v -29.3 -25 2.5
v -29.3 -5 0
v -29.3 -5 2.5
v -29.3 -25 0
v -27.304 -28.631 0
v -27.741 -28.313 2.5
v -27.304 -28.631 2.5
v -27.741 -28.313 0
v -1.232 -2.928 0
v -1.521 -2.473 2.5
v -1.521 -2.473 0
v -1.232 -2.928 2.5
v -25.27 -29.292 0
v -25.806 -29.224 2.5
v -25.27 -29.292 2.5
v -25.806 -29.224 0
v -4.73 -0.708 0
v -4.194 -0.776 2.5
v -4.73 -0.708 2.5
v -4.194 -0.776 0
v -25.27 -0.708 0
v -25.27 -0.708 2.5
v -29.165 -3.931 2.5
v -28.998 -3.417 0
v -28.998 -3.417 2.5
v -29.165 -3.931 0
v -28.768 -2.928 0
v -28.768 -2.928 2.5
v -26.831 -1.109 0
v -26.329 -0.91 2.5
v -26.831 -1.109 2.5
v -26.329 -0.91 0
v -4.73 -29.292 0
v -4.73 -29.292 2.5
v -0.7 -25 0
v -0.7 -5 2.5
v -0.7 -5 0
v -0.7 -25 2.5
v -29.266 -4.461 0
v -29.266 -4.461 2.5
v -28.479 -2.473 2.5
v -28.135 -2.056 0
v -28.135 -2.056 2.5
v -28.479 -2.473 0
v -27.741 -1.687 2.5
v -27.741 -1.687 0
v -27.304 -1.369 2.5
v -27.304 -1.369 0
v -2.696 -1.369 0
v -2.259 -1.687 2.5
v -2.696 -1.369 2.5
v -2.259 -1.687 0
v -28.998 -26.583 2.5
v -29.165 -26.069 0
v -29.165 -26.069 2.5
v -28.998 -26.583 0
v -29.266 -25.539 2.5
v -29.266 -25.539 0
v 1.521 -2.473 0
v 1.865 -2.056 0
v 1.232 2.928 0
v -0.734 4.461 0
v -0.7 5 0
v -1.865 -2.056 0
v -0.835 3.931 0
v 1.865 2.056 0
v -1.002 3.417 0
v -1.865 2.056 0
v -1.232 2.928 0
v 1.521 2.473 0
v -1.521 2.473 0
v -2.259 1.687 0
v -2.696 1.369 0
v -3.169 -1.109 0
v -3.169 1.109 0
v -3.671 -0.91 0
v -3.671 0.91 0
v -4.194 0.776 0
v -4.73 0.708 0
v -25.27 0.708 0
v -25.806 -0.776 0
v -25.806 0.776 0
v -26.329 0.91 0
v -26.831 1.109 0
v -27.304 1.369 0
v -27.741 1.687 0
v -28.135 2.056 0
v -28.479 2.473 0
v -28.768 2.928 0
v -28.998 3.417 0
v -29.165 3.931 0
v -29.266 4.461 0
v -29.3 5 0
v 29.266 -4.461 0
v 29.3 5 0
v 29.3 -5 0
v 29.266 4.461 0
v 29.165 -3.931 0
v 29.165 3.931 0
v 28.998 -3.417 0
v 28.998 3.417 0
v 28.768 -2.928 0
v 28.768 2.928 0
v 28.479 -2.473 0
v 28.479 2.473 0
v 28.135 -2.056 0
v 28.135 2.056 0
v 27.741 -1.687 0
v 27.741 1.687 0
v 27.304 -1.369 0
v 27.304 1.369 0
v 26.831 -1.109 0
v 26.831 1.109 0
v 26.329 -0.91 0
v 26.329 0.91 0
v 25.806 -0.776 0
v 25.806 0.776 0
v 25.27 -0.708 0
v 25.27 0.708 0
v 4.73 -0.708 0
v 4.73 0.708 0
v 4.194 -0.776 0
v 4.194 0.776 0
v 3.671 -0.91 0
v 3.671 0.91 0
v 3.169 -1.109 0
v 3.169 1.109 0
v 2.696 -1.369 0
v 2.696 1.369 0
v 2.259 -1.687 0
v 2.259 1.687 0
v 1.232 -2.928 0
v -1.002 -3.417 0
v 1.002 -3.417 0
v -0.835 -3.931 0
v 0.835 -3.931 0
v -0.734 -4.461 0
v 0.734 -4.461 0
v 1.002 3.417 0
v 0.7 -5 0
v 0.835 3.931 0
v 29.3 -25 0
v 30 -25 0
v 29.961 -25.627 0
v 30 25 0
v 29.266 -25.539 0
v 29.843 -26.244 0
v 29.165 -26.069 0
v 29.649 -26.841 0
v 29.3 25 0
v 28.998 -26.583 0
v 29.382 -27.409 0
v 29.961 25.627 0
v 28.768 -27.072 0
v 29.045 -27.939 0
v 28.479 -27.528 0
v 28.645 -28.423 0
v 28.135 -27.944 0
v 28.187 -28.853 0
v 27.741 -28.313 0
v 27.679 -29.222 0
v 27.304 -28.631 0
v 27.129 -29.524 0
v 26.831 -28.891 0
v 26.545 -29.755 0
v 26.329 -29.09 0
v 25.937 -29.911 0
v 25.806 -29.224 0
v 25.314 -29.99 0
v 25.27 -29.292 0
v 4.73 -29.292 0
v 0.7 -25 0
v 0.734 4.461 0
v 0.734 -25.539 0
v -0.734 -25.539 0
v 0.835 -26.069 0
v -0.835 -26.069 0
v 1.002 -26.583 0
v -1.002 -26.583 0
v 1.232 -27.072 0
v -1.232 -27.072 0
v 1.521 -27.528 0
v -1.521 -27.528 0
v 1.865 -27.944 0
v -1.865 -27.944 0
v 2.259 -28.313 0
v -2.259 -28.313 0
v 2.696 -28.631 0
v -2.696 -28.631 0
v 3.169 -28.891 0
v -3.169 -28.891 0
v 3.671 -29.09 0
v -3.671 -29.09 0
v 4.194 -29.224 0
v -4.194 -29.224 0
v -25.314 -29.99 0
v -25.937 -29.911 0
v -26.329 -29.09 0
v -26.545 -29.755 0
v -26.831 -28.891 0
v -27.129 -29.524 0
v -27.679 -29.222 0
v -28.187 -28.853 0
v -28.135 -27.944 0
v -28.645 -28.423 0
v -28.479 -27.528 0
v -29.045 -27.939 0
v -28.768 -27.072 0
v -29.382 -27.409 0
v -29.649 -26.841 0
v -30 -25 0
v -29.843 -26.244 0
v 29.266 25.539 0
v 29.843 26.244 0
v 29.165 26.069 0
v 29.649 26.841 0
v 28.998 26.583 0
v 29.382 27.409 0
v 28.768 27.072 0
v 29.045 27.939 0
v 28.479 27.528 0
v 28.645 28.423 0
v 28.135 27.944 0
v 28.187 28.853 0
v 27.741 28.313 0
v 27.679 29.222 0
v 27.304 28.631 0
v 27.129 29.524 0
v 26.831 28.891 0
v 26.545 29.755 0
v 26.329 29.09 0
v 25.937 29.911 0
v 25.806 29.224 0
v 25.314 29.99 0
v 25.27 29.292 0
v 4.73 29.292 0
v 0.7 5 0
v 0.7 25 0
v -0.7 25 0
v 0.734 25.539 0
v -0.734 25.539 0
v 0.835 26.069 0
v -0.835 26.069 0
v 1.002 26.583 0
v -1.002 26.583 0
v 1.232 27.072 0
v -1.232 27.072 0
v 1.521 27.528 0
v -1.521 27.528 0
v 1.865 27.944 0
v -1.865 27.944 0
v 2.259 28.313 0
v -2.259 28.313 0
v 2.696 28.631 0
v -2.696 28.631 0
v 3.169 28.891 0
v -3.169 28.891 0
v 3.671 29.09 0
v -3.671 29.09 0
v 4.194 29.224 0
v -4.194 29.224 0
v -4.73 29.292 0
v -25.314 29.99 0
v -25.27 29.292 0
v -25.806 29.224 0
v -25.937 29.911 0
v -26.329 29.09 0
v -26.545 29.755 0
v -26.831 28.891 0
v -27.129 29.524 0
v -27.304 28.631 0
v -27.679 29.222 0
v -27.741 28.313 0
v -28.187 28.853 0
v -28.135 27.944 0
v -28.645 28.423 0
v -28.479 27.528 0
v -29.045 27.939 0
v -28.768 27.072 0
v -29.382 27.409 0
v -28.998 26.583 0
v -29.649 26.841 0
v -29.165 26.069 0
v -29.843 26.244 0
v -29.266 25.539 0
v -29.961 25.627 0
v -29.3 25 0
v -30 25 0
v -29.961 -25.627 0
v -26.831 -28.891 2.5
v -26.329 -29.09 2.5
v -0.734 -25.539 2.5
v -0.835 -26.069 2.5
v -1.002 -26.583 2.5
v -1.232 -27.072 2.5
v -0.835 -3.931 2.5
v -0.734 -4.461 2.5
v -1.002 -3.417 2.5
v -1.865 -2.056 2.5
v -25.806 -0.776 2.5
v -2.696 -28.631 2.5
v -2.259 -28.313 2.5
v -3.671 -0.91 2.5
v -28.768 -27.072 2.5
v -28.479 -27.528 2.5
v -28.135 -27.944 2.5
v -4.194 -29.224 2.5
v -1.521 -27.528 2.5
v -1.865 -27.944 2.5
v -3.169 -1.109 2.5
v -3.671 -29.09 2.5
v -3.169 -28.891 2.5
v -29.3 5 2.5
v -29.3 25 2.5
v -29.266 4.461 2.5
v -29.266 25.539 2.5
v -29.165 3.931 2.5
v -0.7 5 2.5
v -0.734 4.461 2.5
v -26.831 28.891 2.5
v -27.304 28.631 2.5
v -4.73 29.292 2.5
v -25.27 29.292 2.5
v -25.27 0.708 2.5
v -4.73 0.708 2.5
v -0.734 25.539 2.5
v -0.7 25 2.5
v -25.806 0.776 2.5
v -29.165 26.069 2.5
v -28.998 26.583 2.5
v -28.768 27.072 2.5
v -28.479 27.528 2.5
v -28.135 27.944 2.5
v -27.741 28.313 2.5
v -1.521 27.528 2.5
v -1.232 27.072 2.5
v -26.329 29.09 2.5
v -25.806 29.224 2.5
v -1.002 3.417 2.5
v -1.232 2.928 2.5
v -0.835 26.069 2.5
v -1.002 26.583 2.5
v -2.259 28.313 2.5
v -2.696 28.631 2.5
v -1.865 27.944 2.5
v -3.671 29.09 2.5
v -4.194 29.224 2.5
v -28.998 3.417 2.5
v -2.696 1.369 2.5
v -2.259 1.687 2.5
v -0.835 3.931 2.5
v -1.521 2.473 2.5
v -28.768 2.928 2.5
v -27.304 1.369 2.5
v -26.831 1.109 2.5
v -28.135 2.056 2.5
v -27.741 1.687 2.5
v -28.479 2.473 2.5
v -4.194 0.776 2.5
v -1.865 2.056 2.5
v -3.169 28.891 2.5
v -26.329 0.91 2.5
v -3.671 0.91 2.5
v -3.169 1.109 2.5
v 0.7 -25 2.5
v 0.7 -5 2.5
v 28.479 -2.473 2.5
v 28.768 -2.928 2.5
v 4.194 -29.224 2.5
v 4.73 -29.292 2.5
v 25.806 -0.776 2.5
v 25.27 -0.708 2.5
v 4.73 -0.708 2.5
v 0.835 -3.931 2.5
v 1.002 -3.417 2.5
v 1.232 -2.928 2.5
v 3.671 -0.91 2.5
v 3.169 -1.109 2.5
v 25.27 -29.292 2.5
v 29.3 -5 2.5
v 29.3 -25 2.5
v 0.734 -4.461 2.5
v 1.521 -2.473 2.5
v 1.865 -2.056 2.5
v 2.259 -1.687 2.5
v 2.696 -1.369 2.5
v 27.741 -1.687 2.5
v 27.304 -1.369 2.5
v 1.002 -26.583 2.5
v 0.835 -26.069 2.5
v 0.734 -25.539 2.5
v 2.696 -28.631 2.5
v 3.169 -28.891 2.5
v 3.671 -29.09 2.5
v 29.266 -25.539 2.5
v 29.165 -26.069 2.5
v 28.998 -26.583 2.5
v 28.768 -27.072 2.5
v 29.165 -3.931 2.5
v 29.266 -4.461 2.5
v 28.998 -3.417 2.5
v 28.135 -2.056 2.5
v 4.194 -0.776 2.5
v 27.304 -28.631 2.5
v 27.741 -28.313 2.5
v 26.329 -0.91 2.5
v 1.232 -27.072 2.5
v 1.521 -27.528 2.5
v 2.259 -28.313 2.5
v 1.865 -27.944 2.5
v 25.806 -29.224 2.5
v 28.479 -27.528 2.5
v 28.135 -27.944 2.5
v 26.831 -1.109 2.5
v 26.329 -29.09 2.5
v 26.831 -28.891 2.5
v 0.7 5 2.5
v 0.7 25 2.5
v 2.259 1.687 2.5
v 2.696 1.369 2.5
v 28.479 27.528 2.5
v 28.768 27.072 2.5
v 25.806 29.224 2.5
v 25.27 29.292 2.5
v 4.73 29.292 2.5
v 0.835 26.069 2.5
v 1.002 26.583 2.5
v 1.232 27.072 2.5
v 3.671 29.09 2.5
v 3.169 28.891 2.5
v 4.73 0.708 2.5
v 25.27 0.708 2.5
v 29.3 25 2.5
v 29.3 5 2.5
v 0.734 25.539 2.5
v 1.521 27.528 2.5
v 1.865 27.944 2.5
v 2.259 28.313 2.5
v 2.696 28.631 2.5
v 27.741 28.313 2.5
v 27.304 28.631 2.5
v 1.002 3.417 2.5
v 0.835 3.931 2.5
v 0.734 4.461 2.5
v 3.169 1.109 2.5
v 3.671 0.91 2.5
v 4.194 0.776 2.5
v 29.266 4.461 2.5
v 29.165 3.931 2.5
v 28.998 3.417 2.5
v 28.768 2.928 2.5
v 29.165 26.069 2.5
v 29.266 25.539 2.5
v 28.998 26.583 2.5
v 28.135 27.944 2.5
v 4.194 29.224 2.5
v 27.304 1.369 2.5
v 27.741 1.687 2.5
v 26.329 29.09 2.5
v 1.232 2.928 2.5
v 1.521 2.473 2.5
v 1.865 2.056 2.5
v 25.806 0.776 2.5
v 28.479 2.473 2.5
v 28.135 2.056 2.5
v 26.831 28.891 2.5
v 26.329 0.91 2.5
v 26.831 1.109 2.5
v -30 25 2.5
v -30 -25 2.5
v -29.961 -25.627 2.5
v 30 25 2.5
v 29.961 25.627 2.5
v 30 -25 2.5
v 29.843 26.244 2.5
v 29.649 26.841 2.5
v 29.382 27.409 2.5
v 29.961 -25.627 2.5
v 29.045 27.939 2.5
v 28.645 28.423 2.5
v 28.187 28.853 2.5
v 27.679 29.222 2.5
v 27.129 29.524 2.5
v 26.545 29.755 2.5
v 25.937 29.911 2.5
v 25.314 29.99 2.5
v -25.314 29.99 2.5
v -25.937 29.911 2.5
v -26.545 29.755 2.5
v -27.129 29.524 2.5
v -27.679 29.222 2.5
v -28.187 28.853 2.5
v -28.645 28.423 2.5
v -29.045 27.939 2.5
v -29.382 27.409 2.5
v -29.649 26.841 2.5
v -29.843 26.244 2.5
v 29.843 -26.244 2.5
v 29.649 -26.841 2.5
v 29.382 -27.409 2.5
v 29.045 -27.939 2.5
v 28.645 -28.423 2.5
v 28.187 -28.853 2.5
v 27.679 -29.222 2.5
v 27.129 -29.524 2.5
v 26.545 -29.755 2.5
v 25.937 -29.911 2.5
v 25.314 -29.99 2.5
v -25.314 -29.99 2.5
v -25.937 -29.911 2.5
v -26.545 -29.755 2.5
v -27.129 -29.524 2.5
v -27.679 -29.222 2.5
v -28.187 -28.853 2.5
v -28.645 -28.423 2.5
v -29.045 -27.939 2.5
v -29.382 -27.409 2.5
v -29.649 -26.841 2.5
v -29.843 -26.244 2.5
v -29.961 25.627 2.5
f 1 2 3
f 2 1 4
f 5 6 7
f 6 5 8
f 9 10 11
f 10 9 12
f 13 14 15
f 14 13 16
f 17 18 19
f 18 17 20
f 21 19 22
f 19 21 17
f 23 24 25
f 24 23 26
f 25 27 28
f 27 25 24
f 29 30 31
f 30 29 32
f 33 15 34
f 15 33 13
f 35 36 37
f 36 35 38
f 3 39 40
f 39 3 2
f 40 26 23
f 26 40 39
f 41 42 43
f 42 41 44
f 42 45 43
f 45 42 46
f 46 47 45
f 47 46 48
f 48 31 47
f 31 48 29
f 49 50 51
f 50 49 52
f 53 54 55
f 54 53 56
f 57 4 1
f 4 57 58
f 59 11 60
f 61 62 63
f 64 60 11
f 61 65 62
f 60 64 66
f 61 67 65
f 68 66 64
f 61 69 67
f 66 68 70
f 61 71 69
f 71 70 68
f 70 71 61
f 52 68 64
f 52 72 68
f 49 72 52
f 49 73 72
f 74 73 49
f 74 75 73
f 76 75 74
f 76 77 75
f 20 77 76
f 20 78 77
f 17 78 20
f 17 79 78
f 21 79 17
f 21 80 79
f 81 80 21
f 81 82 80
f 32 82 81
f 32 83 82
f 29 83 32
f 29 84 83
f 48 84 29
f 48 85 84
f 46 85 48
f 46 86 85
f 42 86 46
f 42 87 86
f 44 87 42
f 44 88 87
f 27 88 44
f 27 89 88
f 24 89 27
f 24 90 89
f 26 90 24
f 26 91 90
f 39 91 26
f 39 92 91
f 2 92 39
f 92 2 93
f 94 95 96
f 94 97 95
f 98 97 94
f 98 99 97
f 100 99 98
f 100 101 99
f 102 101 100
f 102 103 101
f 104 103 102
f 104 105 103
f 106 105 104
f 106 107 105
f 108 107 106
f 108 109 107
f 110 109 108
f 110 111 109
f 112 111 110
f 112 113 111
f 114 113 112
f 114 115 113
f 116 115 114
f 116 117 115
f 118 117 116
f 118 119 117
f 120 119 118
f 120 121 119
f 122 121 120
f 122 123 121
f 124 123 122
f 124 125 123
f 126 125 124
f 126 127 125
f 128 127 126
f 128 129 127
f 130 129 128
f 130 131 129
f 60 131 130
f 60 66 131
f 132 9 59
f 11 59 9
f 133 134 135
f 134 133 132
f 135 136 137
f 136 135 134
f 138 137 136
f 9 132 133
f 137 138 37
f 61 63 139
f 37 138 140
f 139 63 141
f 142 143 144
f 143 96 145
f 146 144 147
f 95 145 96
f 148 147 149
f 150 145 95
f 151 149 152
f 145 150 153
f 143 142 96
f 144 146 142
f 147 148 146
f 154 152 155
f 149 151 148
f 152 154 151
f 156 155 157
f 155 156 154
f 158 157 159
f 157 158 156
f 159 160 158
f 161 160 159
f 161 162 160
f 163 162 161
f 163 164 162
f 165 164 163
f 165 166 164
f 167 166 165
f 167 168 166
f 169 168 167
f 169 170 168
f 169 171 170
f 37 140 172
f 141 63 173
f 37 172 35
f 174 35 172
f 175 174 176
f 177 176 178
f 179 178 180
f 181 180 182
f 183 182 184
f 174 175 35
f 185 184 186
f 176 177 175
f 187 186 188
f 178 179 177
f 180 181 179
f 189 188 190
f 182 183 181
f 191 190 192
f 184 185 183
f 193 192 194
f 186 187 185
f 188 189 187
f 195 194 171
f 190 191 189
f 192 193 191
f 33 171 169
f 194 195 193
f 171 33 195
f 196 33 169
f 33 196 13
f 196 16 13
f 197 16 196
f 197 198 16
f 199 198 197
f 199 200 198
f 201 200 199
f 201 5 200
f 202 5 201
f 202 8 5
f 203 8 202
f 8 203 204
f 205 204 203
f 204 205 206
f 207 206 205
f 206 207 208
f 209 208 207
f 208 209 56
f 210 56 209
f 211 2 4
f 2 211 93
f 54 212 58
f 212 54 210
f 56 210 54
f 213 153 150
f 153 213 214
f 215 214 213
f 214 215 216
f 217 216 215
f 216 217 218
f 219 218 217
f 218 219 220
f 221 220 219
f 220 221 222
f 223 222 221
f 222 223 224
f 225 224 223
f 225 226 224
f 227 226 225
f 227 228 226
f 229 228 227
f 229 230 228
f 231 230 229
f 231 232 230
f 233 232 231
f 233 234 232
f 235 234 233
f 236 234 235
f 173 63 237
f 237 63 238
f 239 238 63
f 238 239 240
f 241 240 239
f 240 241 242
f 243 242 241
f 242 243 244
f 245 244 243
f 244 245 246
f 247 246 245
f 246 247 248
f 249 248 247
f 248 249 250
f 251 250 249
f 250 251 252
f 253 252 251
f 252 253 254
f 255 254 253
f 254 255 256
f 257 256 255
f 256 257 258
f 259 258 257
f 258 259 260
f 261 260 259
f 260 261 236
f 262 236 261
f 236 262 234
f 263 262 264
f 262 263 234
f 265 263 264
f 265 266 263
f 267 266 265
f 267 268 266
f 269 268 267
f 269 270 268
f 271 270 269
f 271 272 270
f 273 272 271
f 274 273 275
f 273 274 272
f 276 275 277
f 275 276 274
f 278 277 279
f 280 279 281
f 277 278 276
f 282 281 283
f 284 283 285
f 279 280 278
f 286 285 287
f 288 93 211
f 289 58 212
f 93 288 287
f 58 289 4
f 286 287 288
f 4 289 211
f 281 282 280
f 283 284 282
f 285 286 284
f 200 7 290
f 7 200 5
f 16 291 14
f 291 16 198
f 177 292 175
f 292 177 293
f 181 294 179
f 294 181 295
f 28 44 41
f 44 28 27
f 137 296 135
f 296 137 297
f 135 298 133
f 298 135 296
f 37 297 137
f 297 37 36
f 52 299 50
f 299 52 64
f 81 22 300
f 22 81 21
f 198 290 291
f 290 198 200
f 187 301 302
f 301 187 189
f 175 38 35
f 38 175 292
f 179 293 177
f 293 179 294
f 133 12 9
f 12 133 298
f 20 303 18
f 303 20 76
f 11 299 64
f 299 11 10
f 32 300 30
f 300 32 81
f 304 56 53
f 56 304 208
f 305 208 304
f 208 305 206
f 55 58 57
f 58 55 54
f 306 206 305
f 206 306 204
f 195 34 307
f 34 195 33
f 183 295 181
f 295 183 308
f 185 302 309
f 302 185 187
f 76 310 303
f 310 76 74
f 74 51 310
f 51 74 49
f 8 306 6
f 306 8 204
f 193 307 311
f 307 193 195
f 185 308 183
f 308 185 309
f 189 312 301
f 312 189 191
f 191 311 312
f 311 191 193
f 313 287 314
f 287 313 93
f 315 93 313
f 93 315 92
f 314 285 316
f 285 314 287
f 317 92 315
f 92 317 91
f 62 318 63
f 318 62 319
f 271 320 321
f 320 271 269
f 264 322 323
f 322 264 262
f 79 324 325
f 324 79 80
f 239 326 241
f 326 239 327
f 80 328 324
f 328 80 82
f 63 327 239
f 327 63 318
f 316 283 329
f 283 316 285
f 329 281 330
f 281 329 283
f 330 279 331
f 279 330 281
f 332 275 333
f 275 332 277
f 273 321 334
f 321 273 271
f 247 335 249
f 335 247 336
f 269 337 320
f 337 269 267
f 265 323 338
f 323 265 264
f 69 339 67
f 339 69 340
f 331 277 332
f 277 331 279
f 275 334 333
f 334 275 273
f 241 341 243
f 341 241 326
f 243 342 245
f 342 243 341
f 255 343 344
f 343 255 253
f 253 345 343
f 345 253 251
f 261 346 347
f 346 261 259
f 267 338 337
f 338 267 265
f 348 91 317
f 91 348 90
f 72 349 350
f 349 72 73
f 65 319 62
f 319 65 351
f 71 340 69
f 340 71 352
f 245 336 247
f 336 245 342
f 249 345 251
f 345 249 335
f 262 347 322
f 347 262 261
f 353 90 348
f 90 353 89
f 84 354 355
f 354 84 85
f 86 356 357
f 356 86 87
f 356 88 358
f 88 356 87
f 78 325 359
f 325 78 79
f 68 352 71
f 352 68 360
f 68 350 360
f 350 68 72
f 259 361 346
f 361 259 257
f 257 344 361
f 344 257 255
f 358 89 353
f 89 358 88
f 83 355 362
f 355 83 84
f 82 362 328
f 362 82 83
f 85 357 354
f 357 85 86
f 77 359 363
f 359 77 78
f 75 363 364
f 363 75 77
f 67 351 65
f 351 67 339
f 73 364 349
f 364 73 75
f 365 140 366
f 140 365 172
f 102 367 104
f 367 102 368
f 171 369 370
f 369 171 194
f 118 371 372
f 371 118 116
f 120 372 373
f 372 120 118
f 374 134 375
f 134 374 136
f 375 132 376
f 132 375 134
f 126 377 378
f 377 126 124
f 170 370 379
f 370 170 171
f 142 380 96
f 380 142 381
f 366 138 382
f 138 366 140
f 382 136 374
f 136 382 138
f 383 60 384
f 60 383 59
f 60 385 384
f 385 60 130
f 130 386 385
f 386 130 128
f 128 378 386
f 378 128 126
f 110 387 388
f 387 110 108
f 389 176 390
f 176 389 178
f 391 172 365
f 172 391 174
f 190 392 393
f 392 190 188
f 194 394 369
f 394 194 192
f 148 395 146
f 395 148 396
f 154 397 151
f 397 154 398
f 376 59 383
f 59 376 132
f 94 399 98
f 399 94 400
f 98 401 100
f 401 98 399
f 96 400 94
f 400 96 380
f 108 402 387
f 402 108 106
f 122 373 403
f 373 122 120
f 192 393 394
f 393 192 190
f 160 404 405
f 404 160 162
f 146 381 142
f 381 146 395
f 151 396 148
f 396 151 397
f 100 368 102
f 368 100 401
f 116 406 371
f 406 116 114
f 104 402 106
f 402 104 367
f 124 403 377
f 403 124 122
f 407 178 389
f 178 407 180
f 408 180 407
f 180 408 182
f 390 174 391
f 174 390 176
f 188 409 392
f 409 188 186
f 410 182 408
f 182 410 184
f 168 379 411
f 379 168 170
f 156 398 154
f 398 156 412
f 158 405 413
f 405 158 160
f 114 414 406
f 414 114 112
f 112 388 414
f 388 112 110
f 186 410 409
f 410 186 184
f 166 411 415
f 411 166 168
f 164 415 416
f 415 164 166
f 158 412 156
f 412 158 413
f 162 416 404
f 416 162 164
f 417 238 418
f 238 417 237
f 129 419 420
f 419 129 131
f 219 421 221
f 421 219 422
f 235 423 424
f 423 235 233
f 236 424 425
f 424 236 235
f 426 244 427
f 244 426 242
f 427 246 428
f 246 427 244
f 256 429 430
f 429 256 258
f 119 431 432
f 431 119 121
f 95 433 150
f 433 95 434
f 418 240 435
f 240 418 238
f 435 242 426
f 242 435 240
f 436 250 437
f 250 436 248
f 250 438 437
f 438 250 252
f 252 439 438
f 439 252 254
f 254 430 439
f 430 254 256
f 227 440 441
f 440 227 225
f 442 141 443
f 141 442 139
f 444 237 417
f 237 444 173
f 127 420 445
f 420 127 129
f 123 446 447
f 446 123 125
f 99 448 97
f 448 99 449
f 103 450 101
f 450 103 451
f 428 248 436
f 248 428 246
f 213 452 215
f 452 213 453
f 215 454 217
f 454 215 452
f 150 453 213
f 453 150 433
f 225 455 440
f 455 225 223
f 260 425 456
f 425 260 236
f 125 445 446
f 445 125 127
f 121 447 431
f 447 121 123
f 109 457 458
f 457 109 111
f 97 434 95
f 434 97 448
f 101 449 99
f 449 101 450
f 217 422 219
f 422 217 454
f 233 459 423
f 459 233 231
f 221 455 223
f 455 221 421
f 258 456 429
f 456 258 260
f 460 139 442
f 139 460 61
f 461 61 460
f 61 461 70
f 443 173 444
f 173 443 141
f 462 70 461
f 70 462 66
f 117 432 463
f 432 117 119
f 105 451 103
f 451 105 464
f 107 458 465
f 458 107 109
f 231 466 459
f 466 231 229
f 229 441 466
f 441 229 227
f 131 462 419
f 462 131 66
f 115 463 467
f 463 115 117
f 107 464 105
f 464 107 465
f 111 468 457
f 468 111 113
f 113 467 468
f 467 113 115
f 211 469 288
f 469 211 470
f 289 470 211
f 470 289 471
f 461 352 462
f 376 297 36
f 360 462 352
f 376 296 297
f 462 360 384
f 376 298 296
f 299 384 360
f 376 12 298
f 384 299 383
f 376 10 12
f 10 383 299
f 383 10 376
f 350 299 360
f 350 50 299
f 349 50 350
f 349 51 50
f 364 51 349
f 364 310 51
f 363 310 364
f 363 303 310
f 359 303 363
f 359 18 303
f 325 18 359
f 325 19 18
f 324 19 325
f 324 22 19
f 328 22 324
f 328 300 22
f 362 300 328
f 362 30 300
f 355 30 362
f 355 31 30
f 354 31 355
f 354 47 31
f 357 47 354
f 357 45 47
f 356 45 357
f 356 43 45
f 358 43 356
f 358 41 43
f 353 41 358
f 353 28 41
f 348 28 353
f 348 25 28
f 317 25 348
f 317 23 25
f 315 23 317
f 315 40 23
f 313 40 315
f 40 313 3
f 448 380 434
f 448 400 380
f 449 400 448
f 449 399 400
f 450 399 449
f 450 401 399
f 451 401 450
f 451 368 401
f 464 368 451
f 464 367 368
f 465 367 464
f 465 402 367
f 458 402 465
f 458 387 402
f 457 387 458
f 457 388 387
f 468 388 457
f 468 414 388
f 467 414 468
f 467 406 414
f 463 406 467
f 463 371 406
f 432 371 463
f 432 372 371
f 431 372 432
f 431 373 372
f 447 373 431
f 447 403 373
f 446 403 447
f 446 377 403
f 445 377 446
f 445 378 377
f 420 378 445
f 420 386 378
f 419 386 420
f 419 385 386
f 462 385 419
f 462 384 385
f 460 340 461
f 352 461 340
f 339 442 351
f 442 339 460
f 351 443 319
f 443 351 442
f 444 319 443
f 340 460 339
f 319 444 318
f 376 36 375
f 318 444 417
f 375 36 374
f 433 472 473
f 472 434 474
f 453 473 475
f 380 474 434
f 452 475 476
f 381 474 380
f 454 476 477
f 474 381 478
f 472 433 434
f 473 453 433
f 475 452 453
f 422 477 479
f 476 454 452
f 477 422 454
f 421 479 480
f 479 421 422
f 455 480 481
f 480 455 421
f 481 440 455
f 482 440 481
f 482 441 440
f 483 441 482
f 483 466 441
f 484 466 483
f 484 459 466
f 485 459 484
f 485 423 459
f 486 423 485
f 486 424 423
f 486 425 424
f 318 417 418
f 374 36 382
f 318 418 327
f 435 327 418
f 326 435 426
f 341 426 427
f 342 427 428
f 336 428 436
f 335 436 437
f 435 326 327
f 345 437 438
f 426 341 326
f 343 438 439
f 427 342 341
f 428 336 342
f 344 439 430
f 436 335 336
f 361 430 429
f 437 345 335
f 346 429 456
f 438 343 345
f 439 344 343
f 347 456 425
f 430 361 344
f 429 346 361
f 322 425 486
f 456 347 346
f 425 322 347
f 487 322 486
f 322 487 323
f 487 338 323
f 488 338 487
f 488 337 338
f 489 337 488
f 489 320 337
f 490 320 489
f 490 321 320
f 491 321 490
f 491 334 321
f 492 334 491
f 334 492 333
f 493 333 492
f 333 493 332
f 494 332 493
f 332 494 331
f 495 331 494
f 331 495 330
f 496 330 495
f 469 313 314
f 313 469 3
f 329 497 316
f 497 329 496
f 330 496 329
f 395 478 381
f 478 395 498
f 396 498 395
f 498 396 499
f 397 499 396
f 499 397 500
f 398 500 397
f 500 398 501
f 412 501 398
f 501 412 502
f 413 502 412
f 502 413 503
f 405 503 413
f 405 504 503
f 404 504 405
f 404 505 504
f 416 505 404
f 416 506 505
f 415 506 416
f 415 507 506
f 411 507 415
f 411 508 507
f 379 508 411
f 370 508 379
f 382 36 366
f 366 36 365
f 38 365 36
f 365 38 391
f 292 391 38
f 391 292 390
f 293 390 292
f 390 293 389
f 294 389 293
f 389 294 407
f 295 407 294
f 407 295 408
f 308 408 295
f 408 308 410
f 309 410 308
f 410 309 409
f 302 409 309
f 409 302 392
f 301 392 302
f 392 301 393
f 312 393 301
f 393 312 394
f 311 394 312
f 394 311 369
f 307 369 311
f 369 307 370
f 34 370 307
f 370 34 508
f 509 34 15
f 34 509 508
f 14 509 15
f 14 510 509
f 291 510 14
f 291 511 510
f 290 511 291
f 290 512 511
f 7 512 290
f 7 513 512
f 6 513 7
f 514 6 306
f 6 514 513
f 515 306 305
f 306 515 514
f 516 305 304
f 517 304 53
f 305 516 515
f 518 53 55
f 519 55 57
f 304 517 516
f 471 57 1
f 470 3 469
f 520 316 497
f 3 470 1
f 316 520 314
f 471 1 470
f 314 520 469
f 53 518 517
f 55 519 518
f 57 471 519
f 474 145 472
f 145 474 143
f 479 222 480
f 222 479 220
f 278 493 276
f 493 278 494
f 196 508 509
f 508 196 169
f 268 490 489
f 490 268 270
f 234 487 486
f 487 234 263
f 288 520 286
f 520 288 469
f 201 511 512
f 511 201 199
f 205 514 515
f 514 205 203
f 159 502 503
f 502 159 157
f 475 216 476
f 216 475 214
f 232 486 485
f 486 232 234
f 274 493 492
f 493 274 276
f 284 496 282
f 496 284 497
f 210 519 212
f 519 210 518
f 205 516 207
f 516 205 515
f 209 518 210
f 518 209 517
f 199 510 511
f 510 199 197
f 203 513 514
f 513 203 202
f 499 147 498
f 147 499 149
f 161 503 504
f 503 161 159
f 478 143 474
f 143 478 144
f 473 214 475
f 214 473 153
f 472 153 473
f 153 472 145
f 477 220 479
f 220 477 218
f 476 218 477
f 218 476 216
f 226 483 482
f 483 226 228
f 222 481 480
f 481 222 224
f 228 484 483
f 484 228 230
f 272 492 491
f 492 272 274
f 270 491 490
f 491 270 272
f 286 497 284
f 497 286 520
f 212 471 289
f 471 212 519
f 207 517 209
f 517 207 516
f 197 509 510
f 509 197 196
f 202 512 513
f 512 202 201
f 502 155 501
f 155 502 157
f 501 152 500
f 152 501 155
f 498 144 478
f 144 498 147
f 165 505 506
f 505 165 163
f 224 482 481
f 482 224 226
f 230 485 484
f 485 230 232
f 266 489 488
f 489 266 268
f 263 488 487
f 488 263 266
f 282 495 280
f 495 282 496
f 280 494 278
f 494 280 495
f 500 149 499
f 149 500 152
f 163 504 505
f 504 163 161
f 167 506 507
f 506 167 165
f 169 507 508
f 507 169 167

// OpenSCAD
$fn = 50;


difference() {
	union() {
		hull() {
			translate(v = [-25.0000000000, 25.0000000000, 0]) {
				cylinder(h = 2.5000000000, r = 5);
			}
			translate(v = [25.0000000000, 25.0000000000, 0]) {
				cylinder(h = 2.5000000000, r = 5);
			}
			translate(v = [-25.0000000000, -25.0000000000, 0]) {
				cylinder(h = 2.5000000000, r = 5);
			}
			translate(v = [25.0000000000, -25.0000000000, 0]) {
				cylinder(h = 2.5000000000, r = 5);
			}
		}
	}
	union() {
		translate(v = [-15.0000000000, -15.0000000000, 0]) {
			#hull() {
				translate(v = [-10.0000000000, 10.0000000000, 0]) {
					cylinder(h = 2.5000000000, r = 4.3000000000);
				}
				translate(v = [10.0000000000, 10.0000000000, 0]) {
					cylinder(h = 2.5000000000, r = 4.3000000000);
				}
				translate(v = [-10.0000000000, -10.0000000000, 0]) {
					cylinder(h = 2.5000000000, r = 4.3000000000);
				}
				translate(v = [10.0000000000, -10.0000000000, 0]) {
					cylinder(h = 2.5000000000, r = 4.3000000000);
				}
			}
		}
		translate(v = [-15.0000000000, 15.0000000000, 0]) {
			#hull() {
				translate(v = [-10.0000000000, 10.0000000000, 0]) {
					cylinder(h = 2.5000000000, r = 4.3000000000);
				}
				translate(v = [10.0000000000, 10.0000000000, 0]) {
					cylinder(h = 2.5000000000, r = 4.3000000000);
				}
				translate(v = [-10.0000000000, -10.0000000000, 0]) {
					cylinder(h = 2.5000000000, r = 4.3000000000);
				}
				translate(v = [10.0000000000, -10.0000000000, 0]) {
					cylinder(h = 2.5000000000, r = 4.3000000000);
				}
			}
		}
		translate(v = [15.0000000000, -15.0000000000, 0]) {
			#hull() {
				translate(v = [-10.0000000000, 10.0000000000, 0]) {
					cylinder(h = 2.5000000000, r = 4.3000000000);
				}
				translate(v = [10.0000000000, 10.0000000000, 0]) {
					cylinder(h = 2.5000000000, r = 4.3000000000);
				}
				translate(v = [-10.0000000000, -10.0000000000, 0]) {
					cylinder(h = 2.5000000000, r = 4.3000000000);
				}
				translate(v = [10.0000000000, -10.0000000000, 0]) {
					cylinder(h = 2.5000000000, r = 4.3000000000);
				}
			}
		}
		translate(v = [15.0000000000, 15.0000000000, 0]) {
			#hull() {
				translate(v = [-10.0000000000, 10.0000000000, 0]) {
					cylinder(h = 2.5000000000, r = 4.3000000000);
				}
				translate(v = [10.0000000000, 10.0000000000, 0]) {
					cylinder(h = 2.5000000000, r = 4.3000000000);
				}
				translate(v = [-10.0000000000, -10.0000000000, 0]) {
					cylinder(h = 2.5000000000, r = 4.3000000000);
				}
				translate(v = [10.0000000000, -10.0000000000, 0]) {
					cylinder(h = 2.5000000000, r = 4.3000000000);
				}
			}
		}
	}
}
